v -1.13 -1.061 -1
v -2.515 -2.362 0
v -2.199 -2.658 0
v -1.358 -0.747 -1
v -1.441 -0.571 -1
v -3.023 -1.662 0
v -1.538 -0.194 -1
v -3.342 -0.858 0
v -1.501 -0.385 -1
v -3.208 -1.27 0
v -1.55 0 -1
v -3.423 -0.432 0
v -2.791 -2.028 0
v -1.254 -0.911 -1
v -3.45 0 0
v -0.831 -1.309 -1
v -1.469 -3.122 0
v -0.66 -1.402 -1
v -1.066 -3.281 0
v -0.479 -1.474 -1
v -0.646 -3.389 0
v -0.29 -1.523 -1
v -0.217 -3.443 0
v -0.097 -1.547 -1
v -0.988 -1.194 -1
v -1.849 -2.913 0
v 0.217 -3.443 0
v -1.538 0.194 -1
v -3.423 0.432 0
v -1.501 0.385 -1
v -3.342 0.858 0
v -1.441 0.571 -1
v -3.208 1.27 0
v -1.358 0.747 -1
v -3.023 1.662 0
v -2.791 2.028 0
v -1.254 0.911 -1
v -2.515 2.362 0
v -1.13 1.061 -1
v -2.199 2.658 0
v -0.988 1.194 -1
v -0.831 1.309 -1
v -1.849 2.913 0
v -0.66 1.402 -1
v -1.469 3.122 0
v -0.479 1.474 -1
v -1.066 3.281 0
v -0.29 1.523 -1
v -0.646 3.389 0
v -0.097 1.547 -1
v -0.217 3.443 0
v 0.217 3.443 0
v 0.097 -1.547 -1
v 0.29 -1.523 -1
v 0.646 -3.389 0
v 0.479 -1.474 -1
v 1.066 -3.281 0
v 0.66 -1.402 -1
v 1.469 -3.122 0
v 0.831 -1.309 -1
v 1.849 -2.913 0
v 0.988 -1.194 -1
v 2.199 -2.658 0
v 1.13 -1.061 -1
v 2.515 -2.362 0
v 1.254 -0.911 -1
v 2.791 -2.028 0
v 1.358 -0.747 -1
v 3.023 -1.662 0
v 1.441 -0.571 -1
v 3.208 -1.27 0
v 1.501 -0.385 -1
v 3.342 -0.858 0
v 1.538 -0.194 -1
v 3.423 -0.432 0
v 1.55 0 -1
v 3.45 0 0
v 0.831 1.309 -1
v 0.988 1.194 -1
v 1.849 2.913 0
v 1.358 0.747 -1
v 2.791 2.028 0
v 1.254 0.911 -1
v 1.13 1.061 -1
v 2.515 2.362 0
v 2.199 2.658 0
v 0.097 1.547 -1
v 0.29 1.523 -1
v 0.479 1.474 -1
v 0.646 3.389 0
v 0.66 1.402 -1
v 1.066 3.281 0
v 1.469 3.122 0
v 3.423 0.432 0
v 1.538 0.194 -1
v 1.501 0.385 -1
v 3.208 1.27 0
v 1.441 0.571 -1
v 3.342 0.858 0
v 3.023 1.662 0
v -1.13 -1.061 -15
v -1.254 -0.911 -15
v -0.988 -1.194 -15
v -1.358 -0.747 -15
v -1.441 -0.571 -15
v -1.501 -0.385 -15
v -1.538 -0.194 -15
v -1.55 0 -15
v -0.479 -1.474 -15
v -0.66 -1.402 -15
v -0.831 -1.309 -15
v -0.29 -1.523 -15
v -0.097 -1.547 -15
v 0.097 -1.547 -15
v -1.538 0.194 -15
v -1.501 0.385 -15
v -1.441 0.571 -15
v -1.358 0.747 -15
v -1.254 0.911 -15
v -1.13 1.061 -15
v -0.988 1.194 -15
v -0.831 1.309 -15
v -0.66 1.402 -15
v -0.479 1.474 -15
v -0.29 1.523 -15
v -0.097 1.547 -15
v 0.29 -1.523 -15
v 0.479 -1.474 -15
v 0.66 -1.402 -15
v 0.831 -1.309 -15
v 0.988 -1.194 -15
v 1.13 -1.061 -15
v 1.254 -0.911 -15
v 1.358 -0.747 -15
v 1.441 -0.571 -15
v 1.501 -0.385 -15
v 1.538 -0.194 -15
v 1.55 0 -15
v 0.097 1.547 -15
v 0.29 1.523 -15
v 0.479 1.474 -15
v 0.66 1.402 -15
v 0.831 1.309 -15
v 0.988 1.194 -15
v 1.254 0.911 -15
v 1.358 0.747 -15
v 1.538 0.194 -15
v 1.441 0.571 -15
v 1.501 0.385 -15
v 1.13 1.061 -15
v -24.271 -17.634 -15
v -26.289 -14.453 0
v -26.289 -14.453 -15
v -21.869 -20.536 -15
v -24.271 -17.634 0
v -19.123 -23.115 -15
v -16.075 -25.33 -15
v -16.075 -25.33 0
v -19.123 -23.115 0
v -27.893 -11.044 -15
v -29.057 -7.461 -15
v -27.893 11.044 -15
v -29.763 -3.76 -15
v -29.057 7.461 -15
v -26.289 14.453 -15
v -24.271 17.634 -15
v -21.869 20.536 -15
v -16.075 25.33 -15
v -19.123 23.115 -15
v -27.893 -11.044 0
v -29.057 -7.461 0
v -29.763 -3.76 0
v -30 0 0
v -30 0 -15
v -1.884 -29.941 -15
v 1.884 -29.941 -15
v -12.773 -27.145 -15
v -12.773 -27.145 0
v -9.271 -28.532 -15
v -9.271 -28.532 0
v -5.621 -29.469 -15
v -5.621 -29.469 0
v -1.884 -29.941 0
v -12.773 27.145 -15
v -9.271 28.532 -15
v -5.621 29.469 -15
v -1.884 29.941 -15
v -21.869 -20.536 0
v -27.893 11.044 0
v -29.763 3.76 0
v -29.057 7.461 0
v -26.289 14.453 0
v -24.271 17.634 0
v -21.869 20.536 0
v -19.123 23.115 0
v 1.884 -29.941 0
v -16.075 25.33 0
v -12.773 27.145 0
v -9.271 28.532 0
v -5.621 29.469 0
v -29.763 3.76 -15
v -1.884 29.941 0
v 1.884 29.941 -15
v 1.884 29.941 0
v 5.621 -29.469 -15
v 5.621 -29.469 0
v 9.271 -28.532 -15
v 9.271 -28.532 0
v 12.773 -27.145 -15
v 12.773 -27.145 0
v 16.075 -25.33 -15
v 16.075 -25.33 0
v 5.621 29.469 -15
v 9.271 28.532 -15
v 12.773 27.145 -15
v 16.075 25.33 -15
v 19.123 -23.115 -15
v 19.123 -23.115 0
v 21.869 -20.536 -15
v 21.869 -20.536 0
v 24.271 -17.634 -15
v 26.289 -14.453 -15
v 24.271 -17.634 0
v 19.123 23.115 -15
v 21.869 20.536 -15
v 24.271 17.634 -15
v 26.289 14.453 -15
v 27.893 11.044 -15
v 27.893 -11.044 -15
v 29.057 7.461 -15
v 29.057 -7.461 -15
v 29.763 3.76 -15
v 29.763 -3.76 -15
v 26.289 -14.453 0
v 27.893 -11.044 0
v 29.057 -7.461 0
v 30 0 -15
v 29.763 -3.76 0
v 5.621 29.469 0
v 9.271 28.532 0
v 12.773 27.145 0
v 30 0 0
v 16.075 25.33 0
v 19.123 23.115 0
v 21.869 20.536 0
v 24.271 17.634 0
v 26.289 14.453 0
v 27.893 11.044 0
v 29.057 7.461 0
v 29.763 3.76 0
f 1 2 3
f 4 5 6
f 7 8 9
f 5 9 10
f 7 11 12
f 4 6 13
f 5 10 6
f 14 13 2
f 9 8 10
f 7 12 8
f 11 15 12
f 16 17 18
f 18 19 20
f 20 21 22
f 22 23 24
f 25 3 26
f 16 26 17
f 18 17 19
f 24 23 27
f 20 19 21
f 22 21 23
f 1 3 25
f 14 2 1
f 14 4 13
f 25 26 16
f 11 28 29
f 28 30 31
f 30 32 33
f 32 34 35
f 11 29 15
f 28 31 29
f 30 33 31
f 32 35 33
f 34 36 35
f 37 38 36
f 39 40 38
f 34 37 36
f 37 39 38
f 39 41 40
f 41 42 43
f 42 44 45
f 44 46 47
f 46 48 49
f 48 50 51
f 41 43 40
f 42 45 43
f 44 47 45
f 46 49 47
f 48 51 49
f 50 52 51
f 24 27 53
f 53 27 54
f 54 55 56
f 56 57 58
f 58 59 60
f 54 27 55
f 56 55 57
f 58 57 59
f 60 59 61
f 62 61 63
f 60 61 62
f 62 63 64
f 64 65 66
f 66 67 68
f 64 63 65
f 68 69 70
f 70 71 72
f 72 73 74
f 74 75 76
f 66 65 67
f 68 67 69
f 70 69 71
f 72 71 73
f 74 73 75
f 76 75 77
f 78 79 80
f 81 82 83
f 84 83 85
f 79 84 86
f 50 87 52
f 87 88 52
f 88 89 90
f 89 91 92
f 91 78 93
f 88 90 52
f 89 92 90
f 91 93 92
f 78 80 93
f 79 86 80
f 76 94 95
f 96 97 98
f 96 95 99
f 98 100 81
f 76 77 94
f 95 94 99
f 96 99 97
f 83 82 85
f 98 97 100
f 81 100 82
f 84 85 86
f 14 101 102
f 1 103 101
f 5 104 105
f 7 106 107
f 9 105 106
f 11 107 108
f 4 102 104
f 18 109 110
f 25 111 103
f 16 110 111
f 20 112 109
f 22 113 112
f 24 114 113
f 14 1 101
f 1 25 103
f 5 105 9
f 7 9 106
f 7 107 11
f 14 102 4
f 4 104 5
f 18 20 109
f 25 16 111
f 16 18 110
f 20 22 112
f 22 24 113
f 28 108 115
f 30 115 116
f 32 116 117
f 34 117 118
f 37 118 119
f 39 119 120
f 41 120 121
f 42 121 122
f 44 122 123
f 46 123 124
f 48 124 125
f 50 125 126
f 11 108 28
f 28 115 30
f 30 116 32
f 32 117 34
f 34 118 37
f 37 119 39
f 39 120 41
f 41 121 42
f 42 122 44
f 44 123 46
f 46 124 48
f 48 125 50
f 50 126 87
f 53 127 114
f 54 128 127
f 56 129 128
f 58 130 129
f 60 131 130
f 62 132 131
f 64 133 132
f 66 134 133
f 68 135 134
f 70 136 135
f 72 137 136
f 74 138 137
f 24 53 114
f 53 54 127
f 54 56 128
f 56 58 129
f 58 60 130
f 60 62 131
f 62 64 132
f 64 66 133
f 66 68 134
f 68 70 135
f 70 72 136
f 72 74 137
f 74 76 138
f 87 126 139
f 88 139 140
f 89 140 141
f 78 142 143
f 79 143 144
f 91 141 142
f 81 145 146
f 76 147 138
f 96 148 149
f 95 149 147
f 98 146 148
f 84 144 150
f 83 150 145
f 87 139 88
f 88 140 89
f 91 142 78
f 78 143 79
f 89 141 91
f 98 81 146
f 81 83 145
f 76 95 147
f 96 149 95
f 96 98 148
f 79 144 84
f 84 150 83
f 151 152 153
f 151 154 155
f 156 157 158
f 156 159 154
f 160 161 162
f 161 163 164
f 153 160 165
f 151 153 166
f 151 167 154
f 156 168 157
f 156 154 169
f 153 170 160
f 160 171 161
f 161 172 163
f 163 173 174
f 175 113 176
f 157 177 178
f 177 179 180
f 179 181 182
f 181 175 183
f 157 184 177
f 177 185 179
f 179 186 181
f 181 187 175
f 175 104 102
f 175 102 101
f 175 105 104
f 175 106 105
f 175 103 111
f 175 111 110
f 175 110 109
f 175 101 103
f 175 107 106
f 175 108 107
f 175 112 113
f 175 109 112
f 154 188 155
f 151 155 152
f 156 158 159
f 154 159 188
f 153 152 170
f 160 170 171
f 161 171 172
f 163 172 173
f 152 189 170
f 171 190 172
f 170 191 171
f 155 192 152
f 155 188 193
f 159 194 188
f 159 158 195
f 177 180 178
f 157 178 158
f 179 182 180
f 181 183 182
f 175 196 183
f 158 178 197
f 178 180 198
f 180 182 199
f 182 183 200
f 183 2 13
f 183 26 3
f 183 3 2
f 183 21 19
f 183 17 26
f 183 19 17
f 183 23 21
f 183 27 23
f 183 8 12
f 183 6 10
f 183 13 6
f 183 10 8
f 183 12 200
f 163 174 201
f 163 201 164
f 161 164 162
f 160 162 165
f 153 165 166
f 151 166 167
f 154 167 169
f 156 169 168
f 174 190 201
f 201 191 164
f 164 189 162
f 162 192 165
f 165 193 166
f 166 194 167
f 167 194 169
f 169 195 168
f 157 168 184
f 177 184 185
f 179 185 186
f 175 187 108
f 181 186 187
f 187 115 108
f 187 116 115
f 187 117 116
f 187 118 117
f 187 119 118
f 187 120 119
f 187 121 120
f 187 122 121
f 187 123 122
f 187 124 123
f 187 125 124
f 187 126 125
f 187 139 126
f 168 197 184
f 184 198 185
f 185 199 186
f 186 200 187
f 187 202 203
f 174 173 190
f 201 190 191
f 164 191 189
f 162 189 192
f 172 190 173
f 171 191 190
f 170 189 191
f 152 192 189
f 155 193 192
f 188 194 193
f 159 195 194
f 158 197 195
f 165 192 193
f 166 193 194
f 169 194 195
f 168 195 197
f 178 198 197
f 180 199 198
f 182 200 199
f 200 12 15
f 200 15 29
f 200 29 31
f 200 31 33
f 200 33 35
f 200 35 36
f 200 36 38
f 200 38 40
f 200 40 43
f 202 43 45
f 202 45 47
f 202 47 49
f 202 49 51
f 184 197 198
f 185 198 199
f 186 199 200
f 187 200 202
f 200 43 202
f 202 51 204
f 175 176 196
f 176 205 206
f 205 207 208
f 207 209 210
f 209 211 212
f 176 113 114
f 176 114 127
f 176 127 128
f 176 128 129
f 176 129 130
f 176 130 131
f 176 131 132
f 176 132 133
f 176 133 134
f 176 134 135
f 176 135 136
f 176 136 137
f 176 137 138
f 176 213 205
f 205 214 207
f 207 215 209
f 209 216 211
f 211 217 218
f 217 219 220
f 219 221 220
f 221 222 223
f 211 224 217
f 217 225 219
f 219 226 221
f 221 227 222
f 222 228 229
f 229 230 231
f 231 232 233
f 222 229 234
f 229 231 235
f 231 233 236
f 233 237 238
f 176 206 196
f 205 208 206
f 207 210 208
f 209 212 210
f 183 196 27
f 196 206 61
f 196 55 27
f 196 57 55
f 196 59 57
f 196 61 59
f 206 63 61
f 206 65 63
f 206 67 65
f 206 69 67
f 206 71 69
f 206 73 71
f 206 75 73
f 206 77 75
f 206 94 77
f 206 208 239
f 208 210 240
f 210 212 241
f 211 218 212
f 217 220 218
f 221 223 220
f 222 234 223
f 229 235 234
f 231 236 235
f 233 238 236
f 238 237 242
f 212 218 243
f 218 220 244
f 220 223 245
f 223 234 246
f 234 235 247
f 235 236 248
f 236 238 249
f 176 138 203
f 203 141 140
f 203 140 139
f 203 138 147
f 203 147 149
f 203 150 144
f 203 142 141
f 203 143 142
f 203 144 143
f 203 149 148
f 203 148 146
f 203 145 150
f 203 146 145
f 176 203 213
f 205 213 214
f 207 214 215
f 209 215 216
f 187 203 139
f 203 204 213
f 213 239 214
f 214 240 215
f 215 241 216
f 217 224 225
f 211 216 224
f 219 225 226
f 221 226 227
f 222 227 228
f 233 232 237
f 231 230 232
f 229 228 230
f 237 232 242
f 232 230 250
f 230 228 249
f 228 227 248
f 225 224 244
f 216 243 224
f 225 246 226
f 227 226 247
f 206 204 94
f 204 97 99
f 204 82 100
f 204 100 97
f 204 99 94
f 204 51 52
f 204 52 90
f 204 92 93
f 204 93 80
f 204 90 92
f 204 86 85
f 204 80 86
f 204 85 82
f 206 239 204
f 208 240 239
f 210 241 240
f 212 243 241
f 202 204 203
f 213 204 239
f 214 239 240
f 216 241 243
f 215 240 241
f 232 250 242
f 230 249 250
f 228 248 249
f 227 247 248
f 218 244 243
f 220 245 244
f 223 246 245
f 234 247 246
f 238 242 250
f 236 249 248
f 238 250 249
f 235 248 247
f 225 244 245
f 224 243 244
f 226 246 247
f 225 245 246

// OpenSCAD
$fn = 50;

difference() {
	union() {
		translate(v = [0, 0, -15.0]) {
			cylinder(h = 15, r = 30.0);
		}
	}
	union() {
		translate(v = [0, 0, 0]) {
			rotate(a = [0, 0, 0]) {
				difference() {
					union() {
						translate(v = [0, 0, -18.0]) {
							cylinder(h = 18, r = 1.25);
						}
						translate(v = [0, 0, -1.0]) {
							cylinder(h = 1.0, r1 = 1.55, r2 = 3.45);
						}
						translate(v = [0, 0, -18.0]) {
							cylinder(h = 18, r = 1.55);
						}
						translate(v = [0, 0, -18.0]) {
							cylinder(h = 18, r = 1.25);
						}
					}
					union();
				}
			}
		}
	}
}
